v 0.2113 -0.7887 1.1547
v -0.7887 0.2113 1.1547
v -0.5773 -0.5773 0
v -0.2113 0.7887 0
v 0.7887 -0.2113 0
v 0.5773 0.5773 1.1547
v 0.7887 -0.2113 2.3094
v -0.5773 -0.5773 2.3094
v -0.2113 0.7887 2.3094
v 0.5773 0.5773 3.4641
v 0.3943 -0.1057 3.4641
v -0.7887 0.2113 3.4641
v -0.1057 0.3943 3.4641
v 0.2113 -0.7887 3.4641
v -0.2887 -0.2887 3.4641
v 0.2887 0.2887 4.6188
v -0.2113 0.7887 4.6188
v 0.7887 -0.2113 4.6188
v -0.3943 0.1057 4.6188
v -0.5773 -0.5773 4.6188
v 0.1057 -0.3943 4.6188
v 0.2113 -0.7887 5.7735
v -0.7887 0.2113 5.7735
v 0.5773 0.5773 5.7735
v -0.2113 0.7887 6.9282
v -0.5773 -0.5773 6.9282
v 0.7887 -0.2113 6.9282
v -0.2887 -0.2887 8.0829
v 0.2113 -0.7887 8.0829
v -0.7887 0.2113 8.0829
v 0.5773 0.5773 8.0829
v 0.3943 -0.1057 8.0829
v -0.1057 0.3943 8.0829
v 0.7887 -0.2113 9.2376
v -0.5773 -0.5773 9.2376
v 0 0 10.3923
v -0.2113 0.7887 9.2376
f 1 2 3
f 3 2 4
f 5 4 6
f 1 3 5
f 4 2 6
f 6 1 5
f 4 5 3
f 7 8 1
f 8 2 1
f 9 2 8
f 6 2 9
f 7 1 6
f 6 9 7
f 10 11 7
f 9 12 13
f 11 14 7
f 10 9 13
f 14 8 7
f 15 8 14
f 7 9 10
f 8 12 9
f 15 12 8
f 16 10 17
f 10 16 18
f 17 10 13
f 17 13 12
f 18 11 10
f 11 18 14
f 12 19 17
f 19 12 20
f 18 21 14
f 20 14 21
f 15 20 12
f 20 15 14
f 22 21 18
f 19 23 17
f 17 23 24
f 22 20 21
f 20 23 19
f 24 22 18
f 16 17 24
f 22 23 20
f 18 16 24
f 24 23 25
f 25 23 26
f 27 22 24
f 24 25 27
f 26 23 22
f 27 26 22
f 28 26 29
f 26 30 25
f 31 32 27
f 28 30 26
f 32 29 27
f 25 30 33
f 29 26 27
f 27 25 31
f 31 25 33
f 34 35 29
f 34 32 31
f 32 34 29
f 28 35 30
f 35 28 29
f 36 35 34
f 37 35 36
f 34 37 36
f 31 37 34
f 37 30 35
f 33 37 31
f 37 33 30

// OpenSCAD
face_diagonal = sqrt(2);
cube_diagonal = sqrt((face_diagonal^2)+1);
angle = asin(face_diagonal/cube_diagonal);
point_height_1 = cos(angle);
point_height_2 = (cube_diagonal-(2*point_height_1));

module diamond(vertical_position=0) {
	rotate([0, 0, vertical_position*60])
	scale([1, 1, 2])
	translate([0, 0, vertical_position * point_height_2])
	translate([0, 0, -point_height_1])
	rotate(angle, [1, -1, 0])
	cube();
}

difference() {
	diamond(0);
	translate([-2, -2, -2])
		cube([4, 4, 2]);
}
diamond(1);
diamond(2);
diamond(3);
diamond(4);
diamond(5);
diamond(6);
diamond(7);
